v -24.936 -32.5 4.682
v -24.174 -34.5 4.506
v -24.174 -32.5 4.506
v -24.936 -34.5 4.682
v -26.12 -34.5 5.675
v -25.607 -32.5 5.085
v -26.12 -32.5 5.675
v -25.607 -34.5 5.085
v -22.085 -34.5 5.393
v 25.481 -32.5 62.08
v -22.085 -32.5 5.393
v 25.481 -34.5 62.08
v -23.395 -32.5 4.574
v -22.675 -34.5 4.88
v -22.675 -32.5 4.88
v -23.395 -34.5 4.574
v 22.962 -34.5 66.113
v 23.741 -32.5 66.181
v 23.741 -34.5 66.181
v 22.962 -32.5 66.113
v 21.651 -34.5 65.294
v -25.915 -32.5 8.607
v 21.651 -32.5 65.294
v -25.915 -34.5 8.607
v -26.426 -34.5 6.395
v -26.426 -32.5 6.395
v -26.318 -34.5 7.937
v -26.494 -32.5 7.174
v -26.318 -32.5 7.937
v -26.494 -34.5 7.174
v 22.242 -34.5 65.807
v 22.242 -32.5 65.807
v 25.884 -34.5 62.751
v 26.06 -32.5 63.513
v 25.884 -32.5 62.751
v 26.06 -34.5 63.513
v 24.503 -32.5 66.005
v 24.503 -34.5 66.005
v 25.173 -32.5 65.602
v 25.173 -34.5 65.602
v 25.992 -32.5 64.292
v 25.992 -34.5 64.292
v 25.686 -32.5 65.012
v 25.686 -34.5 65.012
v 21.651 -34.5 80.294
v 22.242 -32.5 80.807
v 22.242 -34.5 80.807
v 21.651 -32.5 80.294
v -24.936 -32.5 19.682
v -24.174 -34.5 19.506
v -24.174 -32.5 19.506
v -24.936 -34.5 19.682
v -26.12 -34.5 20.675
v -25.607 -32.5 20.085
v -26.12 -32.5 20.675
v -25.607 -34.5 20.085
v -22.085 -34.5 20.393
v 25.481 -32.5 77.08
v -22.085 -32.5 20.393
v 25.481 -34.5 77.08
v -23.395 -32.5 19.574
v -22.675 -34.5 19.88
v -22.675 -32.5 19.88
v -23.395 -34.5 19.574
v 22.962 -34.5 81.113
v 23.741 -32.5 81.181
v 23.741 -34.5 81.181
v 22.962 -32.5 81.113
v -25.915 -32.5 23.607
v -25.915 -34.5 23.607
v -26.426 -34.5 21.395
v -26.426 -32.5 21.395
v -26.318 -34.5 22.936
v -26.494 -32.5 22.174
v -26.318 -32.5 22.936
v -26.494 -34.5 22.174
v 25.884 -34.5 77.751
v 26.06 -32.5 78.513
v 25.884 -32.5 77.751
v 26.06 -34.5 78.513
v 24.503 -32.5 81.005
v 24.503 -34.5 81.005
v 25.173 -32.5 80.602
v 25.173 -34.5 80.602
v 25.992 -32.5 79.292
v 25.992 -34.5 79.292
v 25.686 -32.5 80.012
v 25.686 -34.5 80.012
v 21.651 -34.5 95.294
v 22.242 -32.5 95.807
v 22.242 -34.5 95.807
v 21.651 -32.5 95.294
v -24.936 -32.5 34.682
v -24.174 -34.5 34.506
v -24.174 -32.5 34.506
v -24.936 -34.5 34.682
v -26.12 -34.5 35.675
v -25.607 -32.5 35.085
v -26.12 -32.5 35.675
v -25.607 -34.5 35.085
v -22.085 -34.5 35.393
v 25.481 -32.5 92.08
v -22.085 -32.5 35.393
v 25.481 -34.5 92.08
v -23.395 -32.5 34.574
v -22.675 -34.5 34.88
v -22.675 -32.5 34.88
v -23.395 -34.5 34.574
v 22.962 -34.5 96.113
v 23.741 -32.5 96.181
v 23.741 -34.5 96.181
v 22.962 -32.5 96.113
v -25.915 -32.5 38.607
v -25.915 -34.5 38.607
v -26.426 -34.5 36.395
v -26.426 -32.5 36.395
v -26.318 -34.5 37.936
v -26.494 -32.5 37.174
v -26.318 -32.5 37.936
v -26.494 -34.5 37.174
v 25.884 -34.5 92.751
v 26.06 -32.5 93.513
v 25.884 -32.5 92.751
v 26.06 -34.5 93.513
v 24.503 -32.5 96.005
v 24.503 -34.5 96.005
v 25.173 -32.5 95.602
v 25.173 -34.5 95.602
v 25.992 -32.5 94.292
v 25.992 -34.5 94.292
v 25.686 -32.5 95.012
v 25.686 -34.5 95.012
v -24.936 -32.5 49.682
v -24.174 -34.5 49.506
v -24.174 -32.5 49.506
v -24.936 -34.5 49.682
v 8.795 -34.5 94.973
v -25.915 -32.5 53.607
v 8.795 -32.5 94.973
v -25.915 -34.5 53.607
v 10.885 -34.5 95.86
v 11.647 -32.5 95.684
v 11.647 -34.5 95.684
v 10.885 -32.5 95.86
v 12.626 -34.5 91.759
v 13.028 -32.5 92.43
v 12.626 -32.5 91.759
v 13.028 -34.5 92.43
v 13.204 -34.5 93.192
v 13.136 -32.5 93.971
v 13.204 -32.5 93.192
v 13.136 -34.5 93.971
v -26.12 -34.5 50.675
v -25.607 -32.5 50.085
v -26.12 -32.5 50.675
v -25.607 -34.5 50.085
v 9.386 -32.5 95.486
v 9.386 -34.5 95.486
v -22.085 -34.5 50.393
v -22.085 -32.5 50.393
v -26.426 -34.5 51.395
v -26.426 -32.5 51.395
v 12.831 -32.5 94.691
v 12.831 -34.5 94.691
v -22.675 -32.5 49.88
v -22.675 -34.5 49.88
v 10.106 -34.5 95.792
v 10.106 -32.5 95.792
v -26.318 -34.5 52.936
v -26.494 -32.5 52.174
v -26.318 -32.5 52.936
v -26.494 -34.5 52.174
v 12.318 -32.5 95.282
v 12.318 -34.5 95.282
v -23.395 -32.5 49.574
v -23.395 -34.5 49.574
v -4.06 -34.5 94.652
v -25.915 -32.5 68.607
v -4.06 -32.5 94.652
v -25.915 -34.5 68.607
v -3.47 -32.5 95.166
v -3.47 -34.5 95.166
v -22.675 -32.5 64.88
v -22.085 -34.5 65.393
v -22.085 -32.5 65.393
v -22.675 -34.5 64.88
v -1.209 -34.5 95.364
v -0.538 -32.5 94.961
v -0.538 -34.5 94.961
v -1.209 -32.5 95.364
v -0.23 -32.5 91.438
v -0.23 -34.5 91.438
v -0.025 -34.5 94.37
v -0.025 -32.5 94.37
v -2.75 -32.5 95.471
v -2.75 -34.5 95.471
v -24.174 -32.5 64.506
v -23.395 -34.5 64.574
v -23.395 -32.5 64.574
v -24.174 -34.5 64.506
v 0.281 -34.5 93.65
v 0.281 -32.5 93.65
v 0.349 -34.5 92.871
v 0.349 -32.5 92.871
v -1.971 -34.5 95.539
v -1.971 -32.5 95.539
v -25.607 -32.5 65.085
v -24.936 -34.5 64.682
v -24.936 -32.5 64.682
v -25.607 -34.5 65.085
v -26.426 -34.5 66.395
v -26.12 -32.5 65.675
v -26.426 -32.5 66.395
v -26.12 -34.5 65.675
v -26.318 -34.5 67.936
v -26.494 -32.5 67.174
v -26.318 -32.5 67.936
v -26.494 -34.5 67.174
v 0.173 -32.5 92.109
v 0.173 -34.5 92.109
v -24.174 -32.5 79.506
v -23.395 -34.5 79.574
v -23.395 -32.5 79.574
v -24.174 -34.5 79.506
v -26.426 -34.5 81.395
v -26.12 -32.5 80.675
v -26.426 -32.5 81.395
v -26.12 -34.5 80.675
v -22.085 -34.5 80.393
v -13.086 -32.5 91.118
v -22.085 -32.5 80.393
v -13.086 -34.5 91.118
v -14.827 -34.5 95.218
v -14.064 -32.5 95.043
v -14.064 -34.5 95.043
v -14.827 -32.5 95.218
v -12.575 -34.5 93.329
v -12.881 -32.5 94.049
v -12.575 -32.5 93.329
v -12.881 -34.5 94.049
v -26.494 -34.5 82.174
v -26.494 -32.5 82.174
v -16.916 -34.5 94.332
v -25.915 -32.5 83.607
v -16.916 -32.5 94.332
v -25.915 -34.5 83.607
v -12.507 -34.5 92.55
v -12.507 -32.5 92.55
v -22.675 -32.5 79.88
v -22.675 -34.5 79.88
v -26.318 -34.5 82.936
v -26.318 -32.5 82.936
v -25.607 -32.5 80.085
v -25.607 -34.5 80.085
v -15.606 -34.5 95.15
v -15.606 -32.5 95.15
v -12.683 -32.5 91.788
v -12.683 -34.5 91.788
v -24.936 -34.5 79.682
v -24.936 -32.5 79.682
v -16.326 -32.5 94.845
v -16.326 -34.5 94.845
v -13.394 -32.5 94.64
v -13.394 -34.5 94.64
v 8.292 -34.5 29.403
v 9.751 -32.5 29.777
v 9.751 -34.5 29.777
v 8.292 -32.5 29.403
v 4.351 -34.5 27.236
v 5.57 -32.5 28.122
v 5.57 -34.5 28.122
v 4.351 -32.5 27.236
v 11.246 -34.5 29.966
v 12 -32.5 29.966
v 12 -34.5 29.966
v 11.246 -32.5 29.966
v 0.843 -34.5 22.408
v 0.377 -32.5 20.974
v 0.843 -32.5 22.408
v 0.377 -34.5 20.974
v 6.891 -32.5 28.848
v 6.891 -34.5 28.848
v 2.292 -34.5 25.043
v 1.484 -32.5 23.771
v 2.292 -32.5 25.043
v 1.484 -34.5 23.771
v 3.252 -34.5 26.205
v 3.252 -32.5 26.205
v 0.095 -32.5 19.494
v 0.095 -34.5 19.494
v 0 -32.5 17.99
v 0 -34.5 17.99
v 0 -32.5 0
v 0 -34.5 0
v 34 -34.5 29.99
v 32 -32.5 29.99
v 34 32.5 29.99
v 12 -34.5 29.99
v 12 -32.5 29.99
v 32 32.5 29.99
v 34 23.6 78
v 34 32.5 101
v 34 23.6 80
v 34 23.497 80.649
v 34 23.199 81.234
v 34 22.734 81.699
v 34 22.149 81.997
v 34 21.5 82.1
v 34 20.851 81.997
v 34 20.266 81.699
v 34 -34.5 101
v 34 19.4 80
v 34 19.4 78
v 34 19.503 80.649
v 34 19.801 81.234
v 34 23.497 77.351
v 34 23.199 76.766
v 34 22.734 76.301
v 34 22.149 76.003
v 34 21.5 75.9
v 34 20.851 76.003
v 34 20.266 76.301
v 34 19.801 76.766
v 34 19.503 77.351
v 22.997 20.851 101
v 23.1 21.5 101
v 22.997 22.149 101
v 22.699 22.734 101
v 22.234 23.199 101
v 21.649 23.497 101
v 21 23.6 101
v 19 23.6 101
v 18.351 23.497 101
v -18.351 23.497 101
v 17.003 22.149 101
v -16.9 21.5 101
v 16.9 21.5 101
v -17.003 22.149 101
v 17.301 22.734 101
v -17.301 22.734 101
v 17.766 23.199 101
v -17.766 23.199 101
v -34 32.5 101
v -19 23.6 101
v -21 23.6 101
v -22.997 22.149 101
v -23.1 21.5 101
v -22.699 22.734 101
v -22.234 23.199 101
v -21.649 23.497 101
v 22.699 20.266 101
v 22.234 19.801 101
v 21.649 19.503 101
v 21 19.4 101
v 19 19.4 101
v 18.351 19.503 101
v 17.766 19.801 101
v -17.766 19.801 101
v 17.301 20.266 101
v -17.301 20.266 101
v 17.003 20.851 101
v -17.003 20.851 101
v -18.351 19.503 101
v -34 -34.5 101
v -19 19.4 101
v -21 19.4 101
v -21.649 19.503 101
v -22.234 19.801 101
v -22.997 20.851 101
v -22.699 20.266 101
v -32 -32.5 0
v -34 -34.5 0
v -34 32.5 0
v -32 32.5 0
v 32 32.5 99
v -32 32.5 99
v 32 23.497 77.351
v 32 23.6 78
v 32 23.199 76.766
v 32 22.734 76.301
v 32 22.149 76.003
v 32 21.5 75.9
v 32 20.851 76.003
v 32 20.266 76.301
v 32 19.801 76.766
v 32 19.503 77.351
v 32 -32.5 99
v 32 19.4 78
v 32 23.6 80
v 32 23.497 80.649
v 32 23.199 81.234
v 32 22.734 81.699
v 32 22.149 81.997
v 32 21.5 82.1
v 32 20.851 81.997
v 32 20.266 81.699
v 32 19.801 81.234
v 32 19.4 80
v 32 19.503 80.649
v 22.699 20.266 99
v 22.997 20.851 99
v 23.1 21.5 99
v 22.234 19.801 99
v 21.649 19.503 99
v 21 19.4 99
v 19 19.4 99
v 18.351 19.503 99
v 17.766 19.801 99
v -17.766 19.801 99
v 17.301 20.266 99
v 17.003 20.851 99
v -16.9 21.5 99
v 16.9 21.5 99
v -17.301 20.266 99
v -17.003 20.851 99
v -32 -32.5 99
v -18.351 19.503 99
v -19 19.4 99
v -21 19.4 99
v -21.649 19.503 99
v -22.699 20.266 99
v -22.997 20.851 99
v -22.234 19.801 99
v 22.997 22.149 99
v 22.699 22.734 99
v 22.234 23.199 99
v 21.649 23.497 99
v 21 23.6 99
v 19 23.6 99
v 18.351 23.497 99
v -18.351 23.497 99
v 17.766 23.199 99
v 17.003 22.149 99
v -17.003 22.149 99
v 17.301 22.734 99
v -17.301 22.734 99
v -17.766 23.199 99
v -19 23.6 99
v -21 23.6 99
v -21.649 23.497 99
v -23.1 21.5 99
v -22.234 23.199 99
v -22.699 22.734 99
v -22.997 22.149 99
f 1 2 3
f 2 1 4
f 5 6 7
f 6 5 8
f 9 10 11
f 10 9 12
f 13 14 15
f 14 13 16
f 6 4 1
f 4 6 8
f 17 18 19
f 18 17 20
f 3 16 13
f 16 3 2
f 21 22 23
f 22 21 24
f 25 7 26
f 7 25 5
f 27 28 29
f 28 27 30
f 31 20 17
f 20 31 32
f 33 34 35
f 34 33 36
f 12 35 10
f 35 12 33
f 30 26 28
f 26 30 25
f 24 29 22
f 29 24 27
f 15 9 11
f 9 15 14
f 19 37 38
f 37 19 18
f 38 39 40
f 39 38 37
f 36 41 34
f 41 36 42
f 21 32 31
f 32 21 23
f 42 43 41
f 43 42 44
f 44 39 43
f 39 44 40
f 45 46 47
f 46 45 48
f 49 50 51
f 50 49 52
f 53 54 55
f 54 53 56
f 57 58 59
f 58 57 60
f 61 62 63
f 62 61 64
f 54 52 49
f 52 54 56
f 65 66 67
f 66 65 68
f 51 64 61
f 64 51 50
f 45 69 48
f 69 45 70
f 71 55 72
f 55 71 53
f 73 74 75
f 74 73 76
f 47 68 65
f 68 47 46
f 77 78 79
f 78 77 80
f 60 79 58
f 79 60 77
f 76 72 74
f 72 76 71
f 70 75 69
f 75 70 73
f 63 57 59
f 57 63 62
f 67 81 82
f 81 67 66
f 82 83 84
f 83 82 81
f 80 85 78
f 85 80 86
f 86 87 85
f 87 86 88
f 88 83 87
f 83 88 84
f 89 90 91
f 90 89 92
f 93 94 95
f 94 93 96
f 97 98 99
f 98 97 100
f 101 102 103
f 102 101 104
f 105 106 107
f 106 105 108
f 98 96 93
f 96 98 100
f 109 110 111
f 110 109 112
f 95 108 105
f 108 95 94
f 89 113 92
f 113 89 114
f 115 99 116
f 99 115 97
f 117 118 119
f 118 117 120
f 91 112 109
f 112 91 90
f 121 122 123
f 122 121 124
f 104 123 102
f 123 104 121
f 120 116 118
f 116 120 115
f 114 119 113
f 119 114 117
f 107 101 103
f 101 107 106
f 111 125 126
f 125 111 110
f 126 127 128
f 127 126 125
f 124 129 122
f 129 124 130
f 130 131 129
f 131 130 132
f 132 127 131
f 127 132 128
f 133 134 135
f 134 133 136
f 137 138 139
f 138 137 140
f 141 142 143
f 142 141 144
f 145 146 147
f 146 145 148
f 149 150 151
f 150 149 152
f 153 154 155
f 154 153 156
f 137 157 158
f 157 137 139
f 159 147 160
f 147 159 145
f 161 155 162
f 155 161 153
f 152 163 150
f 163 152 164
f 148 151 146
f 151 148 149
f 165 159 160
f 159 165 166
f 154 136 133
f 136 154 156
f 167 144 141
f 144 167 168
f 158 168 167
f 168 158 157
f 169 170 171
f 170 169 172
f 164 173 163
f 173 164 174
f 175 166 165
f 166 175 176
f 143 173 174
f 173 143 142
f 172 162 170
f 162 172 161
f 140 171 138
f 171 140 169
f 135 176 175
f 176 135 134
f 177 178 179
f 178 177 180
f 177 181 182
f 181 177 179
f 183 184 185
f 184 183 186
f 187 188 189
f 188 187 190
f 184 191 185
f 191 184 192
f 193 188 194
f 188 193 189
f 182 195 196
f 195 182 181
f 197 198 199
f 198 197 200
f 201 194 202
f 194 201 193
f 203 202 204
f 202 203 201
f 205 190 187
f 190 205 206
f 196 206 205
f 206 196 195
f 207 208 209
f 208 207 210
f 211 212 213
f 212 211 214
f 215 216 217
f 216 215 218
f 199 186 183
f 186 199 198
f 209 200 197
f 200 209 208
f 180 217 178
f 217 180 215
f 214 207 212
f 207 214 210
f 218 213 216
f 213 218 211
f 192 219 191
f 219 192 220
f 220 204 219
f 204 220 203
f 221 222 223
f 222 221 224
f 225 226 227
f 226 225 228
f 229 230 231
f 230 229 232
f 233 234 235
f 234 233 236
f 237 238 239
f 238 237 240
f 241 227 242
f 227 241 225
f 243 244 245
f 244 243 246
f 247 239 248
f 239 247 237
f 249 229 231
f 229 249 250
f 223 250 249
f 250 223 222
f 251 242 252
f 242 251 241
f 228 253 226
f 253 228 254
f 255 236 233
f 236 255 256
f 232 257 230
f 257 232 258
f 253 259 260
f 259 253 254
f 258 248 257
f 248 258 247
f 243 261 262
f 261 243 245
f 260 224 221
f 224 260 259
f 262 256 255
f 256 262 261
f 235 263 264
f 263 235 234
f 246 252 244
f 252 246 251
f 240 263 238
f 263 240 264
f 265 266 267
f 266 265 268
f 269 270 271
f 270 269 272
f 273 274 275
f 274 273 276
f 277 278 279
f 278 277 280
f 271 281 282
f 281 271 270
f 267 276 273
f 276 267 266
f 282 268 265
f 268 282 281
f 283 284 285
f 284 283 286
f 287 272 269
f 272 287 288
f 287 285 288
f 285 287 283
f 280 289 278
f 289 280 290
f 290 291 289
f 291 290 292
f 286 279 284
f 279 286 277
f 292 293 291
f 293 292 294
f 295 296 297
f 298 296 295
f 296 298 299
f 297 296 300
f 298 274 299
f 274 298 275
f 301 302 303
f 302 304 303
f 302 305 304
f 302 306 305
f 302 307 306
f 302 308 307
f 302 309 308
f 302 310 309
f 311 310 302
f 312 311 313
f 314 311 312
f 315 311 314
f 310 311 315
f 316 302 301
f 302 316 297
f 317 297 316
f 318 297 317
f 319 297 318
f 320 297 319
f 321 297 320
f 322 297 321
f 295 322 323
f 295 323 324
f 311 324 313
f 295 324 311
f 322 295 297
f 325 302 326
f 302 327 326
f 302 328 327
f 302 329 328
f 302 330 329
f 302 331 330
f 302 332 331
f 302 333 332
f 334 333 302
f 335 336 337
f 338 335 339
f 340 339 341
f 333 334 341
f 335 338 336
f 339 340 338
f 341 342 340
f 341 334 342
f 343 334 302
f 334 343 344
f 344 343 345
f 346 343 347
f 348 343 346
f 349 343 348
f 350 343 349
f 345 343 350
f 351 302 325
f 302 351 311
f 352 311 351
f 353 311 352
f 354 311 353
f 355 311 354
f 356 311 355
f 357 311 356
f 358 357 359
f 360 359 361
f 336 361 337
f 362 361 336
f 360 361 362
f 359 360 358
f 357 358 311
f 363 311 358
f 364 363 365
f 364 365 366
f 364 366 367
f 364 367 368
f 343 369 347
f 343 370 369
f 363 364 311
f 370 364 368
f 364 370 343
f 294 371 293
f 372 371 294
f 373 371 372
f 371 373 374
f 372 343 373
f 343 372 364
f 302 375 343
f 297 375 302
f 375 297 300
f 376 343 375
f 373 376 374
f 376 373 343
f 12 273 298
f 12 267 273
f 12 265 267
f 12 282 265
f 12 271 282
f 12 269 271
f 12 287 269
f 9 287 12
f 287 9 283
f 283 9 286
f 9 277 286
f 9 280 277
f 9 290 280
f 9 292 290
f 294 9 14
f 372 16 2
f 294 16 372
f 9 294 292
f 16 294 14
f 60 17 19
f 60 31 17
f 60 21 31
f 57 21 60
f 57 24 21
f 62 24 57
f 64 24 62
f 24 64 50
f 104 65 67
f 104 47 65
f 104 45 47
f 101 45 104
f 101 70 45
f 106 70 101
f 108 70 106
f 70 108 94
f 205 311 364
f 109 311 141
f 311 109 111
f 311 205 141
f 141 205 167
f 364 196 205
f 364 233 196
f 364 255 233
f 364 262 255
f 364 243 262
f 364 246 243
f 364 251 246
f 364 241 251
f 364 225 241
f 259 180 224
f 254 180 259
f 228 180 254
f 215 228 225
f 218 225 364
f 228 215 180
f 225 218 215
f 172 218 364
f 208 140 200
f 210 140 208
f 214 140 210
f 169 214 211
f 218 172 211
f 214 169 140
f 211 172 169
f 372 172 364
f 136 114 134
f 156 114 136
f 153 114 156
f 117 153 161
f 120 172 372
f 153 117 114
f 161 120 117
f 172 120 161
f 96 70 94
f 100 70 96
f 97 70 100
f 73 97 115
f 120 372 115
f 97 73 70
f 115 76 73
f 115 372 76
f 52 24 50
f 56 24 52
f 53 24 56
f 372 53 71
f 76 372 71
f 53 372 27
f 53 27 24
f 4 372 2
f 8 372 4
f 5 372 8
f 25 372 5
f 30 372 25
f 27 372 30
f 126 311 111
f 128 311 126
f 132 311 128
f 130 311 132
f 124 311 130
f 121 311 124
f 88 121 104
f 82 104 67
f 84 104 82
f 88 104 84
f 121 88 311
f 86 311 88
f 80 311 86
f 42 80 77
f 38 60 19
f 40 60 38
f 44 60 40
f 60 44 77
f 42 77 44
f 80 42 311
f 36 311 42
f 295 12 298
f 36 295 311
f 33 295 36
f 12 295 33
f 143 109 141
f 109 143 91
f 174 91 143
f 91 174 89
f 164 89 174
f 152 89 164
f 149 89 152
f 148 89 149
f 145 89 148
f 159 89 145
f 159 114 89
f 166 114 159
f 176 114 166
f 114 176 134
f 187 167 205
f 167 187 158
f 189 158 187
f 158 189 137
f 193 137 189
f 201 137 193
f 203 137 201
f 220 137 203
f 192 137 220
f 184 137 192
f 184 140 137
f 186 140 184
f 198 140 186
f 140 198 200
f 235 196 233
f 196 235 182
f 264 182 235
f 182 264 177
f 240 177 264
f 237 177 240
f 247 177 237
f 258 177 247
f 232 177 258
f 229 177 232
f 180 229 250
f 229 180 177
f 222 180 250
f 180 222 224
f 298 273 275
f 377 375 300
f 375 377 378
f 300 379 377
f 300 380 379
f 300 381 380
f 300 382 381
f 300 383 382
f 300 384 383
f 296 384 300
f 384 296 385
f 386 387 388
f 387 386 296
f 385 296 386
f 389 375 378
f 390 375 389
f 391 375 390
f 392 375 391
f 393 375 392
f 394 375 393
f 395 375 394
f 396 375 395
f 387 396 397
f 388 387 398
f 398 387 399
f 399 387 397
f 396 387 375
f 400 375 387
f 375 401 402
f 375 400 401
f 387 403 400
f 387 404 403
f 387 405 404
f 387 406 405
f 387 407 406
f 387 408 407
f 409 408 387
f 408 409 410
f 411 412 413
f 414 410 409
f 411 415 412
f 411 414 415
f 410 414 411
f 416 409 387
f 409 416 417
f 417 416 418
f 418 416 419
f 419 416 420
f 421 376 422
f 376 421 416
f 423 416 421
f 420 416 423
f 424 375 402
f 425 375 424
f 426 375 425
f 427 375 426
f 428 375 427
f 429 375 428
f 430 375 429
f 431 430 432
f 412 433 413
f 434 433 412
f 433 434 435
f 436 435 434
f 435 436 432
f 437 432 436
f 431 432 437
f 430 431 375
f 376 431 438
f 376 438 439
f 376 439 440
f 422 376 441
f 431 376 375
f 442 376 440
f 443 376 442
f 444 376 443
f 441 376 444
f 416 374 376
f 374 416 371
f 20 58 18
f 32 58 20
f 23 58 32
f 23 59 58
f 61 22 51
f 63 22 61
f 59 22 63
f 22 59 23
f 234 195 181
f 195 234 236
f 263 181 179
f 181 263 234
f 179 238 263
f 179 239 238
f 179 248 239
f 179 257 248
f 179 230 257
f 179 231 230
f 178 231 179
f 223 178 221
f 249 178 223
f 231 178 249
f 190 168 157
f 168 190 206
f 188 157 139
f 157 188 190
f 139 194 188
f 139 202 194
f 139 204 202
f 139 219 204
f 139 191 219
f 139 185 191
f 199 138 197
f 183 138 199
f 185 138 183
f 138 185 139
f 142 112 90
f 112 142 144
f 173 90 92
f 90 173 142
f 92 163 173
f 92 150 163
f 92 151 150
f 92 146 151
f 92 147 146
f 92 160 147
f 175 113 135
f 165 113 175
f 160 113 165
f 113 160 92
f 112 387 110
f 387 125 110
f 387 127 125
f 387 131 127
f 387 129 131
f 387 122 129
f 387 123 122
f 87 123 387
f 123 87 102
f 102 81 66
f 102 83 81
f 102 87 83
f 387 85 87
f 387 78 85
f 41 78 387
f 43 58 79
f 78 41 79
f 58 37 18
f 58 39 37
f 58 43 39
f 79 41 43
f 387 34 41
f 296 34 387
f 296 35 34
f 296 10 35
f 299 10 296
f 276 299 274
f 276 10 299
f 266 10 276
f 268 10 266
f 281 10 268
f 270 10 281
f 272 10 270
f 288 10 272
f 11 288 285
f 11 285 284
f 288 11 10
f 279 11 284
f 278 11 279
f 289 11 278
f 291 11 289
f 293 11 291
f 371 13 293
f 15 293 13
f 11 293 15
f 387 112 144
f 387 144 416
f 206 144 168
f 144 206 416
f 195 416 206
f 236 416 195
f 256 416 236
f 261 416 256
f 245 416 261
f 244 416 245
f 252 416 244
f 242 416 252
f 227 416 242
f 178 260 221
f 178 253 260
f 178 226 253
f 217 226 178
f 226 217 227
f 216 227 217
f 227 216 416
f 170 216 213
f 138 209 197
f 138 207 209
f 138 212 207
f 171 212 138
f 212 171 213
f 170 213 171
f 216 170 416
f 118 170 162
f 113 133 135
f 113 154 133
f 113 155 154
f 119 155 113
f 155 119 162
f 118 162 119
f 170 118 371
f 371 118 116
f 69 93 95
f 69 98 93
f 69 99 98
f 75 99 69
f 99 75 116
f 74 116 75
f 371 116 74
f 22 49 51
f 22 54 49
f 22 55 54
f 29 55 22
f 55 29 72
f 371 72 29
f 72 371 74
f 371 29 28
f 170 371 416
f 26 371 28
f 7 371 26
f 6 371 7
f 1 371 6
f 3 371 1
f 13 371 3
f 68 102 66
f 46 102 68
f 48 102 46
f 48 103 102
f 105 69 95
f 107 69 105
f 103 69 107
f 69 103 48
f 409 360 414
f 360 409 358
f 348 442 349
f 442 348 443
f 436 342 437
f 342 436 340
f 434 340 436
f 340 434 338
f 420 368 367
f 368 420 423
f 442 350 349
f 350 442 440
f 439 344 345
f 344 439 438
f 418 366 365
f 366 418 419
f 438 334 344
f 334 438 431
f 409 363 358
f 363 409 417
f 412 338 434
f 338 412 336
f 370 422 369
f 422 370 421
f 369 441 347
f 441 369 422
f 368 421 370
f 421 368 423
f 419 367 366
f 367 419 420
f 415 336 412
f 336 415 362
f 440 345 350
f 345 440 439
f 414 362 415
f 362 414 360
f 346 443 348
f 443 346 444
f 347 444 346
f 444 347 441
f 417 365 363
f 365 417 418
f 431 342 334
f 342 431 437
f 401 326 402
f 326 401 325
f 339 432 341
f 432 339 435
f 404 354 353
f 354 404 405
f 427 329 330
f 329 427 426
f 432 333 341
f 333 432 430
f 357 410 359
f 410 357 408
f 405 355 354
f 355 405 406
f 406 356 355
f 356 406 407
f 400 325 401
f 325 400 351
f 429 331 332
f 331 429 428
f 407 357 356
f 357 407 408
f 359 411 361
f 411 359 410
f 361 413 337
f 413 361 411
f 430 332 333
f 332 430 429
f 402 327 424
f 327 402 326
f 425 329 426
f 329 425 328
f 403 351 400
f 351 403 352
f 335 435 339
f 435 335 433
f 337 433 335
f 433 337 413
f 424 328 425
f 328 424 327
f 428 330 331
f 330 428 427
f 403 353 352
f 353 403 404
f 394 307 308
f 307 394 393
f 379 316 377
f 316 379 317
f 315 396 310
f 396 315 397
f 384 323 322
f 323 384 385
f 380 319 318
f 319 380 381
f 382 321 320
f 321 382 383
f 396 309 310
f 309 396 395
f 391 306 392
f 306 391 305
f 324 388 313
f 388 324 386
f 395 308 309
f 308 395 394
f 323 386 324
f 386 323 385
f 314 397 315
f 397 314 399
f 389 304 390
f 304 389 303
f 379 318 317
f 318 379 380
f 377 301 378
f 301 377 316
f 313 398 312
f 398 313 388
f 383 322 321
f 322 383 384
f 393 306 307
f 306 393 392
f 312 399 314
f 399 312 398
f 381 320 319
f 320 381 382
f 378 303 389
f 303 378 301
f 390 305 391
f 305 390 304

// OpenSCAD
inWidth  = 64;
inDepth  = 65;
inHeight = 99; // was 105

extThick = 2.0;

screwX1  = 12;
screwX2  = 52;
screwZ2  = 79;
screwDepth = 54;

cutHeight = 30;

epsilon=0.01;
$fn=20;

difference() {
   /* main form */
   translate([-0.5*inWidth-extThick, -0.5*inDepth-extThick,0])
      cube([inWidth+2*extThick, inDepth+extThick, inHeight+extThick]);

   /* interior and back removal */
   translate([-0.5*inWidth, -0.5*inDepth,-1*epsilon])
      cube([inWidth, inDepth+epsilon, inHeight+epsilon]);

   /* top screws */
   translate([screwX1 -0.5*inWidth, screwDepth - 0.5*inDepth, 0]) hull() {
         translate([-1,0,0]) cylinder(d=4.2,h=inHeight+10);
         translate([1,0,0]) cylinder(d=4.2,h=inHeight+10);
      }
   translate([screwX2 -0.5*inWidth, screwDepth - 0.5*inDepth, 0]) hull() {
         translate([-1,0,0]) cylinder(d=4.2,h=inHeight+10);
         translate([1,0,0]) cylinder(d=4.2,h=inHeight+10);
      }

   /* side screws */
   if (0) translate([epsilon, screwDepth - 0.5*inDepth, screwZ1]) rotate([0,90,0])
      hull() {
         translate([-1,0,0]) cylinder(d=4.2,h=inWidth+10);
         translate([1,0,0]) cylinder(d=4.2,h=inWidth+10);
      }
   translate([epsilon, screwDepth - 0.5*inDepth, screwZ2]) rotate([0,90,0])
      hull() {
         translate([-1,0,0]) cylinder(d=4.2,h=inWidth+10);
         translate([1,0,0]) cylinder(d=4.2,h=inWidth+10);
      }

   airCuts();
   sideCut();
}

module airCuts() {
   for (i=[0:2]) {
      translate([-0.5*inWidth + 8,-0.5*inDepth+epsilon,15*i+7])
      rotate([90,40,0]) hull() {
         cylinder(r=2.5,h=10);
         translate([0,74,0]) cylinder(r=2.5,h=10);
      }
   }

   translate([-0.5*inWidth + 8,-0.5*inDepth+epsilon,15*3+7])
   rotate([90,40,0]) hull() {
      cylinder(r=2.5,h=10);
      translate([0,54,0]) cylinder(r=2.5,h=10);
   }

   translate([-0.5*inWidth + 8,-0.5*inDepth+epsilon,15*4+7])
   rotate([90,40,0]) hull() {
      cylinder(r=2.5,h=10);
      translate([0,34,0]) cylinder(r=2.5,h=10);
   }

   translate([-0.5*inWidth + 8,-0.5*inDepth+epsilon,15*5+7])
   rotate([90,40,0]) hull() {
      cylinder(r=2.5,h=10);
      translate([0,14,0]) cylinder(r=2.5,h=10);
   }
}

module sideCut() {
   translate([0,-0.5*inDepth-1*extThick-1*epsilon,-1*epsilon]) {
      translate([12,inDepth+extThick+epsilon,cutHeight-12]) rotate([90,0,0]) cylinder($fn=50,r=12,h=inDepth+extThick+2*epsilon);
      cube([12+epsilon,inDepth+extThick+2*epsilon,cutHeight-12]);
      translate([12,0,0]) cube([inWidth,inDepth+extThick+2*epsilon,cutHeight]);
   }
}
